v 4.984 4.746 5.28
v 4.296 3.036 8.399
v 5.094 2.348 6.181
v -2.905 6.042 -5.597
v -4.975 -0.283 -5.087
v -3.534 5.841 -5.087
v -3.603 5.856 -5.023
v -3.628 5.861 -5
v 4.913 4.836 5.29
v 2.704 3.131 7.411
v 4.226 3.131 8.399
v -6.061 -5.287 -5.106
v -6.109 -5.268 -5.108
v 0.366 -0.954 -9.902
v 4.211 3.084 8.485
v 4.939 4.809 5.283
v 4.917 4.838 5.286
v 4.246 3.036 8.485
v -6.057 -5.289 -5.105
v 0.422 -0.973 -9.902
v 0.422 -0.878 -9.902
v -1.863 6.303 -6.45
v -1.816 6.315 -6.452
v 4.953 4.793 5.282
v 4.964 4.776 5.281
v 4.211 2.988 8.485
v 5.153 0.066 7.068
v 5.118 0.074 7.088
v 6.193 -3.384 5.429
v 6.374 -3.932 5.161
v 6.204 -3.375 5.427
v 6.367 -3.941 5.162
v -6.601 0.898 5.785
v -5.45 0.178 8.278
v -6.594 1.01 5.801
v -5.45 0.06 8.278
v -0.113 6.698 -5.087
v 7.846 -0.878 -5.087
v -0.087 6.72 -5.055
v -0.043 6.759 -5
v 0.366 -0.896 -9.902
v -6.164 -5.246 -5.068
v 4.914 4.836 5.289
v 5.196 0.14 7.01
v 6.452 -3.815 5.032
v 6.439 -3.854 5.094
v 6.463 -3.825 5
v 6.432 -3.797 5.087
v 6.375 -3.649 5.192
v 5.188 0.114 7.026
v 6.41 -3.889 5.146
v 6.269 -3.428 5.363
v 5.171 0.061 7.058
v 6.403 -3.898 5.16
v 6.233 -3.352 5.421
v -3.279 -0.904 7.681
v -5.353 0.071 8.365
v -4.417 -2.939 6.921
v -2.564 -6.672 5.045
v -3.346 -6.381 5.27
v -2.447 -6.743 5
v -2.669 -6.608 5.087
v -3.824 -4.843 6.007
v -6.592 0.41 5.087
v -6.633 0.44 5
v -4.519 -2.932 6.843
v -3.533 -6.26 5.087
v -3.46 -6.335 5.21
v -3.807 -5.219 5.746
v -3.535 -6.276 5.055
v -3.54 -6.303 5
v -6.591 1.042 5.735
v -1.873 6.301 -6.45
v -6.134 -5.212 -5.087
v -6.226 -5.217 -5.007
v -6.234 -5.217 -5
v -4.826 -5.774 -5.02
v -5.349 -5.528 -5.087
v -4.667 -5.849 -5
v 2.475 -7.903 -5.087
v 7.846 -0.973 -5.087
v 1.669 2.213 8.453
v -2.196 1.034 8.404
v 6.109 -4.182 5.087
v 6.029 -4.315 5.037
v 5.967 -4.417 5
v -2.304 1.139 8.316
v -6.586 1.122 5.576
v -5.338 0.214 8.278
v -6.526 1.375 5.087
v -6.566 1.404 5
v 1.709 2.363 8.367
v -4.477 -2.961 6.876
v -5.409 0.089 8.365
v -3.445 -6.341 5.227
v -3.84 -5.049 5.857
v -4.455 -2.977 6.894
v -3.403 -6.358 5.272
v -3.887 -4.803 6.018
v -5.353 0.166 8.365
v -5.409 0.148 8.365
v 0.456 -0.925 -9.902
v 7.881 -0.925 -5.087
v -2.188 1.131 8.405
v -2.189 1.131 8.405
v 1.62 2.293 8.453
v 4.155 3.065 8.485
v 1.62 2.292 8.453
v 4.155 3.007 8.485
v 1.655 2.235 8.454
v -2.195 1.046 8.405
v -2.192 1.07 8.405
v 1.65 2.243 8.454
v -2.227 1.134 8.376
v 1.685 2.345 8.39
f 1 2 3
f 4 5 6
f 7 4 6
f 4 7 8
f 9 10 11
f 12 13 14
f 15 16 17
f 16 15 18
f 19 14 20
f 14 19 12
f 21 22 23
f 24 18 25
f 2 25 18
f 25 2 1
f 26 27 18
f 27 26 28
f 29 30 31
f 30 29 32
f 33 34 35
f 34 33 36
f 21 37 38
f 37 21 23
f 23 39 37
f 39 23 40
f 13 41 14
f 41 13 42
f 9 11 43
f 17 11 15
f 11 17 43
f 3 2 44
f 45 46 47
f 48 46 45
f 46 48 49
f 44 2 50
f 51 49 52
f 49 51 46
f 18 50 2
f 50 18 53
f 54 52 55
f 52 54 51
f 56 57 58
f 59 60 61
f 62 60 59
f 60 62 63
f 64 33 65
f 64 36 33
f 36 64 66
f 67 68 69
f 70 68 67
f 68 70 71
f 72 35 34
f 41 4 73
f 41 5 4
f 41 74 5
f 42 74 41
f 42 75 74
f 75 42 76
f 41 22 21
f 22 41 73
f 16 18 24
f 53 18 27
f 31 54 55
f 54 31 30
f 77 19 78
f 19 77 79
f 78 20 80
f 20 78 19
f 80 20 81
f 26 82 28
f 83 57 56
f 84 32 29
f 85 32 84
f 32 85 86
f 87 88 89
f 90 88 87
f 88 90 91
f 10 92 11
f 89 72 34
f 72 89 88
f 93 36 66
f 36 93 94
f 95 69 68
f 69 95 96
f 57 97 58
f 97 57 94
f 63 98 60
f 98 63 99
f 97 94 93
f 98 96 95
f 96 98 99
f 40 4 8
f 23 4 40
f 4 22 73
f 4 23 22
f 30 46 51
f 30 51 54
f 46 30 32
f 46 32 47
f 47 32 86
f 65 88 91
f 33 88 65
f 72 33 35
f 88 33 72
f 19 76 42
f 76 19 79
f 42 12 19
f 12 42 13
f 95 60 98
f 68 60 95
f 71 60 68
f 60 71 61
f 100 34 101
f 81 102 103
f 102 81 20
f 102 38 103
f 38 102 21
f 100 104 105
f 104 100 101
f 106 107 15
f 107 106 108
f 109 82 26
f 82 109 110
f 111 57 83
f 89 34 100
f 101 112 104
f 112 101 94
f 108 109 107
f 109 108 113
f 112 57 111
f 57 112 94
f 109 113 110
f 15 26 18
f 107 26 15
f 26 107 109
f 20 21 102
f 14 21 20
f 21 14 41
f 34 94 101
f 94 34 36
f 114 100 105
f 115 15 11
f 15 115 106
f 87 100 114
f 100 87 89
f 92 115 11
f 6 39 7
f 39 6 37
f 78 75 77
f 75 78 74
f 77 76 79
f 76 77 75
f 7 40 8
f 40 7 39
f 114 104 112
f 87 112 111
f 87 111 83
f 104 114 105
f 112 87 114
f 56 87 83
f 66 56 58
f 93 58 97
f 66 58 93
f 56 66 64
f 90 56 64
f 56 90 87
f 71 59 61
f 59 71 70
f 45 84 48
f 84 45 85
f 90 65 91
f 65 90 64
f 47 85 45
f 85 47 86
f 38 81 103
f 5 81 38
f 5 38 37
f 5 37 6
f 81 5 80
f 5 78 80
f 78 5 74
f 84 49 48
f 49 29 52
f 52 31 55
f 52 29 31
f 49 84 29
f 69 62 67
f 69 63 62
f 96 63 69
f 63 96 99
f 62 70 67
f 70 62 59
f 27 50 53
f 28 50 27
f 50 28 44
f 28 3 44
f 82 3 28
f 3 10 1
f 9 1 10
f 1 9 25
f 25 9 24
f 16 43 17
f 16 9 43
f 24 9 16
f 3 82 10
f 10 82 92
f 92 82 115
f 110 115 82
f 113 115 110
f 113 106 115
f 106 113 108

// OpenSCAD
// Auto-generated OpenSCAD file

    inner_points = 10*[[0.23620735966756062, -0.8589852711237683, 0.5000000000000063], [0.23620735966771172, -0.858985271123738, -0.4999999999999937], [0.34761095792346763, 0.7552090254358284, 0.5000000000000718], [0.34761095792361874, 0.7552090254358587, -0.4999999999999281], [-0.6913160481524341, -0.4852202005968615, 0.49999999999987743], [-0.6913160481522832, -0.48522020059683124, -0.5000000000001226], [-0.6224648379612451, 0.5124067391231968, 0.49999999999991795], [-0.6224648379610942, 0.512406739123227, -0.5000000000000819], [0.8782995612526363, -0.09235784879684011, 0.5000000000001265], [0.8782995612527874, -0.09235784879680989, -0.49999999999987355], [0.029667398545917656, -0.03378951119170483, 1.0257311121191337]];

    outer_points = 10*[[0.6896236781921562, -0.5645352314085775, 0.42346895131185747], [0.41955903020283425, 0.3036037251142055, 0.8398820131554279], [-0.6679054017418039, -0.5645352314085775, -0.456956392418973], [-0.9379700497311259, 0.3036037251142055, -0.04054333057540266], [0.879621500888307, -0.092505702154205, -0.43739628255614915], [0.6095568528989852, 0.775633254368578, -0.0209832207125788], [0.04062238877274693, -0.092505702154205, -0.9815290695386115], [-0.22944225921657496, 0.775633254368578, -0.5651160076950412], [-0.26680054613810145, -0.8562655241813926, 0.41138013859295025], [-0.5368651941274234, 0.011873432341390544, 0.8277932004365205], [0.2770137117261496, -0.8904771373480586, -0.42712783302573903]];

    // Convex hull for inner set (I)
    module inner_hull() {
        hull() {
            for (p = inner_points) {
                translate(p) sphere(r=0.1);
            }
        }
    }

    // Convex hull for outer set (O) minus inner hull (O \ I)
    module outer_minus_inner() {
        difference() {
            hull() {
                for (p = outer_points) {
                    translate(p) sphere(r=0.1);
                }
            }
            inner_hull(); // Subtract inner hull
        }
    }

    // Convex hull for outer set (O) minus all translated inner hulls
    module outer_minus_AllTranslationInner() {
        difference() {
            hull() {
                for (p = outer_points) {
                    translate(p) sphere(r=0.1);
                }
            }
            hull() {
                translate([0,0,50]) inner_hull();
                translate([0,0,-50]) inner_hull();
            }; // Subtract translated inner hulls
        }
    }

    // Difference between outer_minus_inner and outer_minus_AllTranslationInner
    module outer_minus_inner_diff() {
        difference() {
            // Outer minus inner
            difference() {
                hull() {
                    for (p = outer_points) {
                        translate(p) sphere(r=0.1);
                    }
                }
                inner_hull();
            }

            // Subtract Outer minus AllTranslationInner
            difference() {
                hull() {
                    for (p = outer_points) {
                        translate(p) sphere(r=0.1);
                    }
                }
                hull() {
                    translate([0,0,50]) inner_hull();
                    translate([0,0,-50]) inner_hull();
                };
            }
        }
    }

    // Rendering all with colors applied
    color([1, 1, 0, 1]) outer_minus_inner_diff(); // Opaque yellow
    
